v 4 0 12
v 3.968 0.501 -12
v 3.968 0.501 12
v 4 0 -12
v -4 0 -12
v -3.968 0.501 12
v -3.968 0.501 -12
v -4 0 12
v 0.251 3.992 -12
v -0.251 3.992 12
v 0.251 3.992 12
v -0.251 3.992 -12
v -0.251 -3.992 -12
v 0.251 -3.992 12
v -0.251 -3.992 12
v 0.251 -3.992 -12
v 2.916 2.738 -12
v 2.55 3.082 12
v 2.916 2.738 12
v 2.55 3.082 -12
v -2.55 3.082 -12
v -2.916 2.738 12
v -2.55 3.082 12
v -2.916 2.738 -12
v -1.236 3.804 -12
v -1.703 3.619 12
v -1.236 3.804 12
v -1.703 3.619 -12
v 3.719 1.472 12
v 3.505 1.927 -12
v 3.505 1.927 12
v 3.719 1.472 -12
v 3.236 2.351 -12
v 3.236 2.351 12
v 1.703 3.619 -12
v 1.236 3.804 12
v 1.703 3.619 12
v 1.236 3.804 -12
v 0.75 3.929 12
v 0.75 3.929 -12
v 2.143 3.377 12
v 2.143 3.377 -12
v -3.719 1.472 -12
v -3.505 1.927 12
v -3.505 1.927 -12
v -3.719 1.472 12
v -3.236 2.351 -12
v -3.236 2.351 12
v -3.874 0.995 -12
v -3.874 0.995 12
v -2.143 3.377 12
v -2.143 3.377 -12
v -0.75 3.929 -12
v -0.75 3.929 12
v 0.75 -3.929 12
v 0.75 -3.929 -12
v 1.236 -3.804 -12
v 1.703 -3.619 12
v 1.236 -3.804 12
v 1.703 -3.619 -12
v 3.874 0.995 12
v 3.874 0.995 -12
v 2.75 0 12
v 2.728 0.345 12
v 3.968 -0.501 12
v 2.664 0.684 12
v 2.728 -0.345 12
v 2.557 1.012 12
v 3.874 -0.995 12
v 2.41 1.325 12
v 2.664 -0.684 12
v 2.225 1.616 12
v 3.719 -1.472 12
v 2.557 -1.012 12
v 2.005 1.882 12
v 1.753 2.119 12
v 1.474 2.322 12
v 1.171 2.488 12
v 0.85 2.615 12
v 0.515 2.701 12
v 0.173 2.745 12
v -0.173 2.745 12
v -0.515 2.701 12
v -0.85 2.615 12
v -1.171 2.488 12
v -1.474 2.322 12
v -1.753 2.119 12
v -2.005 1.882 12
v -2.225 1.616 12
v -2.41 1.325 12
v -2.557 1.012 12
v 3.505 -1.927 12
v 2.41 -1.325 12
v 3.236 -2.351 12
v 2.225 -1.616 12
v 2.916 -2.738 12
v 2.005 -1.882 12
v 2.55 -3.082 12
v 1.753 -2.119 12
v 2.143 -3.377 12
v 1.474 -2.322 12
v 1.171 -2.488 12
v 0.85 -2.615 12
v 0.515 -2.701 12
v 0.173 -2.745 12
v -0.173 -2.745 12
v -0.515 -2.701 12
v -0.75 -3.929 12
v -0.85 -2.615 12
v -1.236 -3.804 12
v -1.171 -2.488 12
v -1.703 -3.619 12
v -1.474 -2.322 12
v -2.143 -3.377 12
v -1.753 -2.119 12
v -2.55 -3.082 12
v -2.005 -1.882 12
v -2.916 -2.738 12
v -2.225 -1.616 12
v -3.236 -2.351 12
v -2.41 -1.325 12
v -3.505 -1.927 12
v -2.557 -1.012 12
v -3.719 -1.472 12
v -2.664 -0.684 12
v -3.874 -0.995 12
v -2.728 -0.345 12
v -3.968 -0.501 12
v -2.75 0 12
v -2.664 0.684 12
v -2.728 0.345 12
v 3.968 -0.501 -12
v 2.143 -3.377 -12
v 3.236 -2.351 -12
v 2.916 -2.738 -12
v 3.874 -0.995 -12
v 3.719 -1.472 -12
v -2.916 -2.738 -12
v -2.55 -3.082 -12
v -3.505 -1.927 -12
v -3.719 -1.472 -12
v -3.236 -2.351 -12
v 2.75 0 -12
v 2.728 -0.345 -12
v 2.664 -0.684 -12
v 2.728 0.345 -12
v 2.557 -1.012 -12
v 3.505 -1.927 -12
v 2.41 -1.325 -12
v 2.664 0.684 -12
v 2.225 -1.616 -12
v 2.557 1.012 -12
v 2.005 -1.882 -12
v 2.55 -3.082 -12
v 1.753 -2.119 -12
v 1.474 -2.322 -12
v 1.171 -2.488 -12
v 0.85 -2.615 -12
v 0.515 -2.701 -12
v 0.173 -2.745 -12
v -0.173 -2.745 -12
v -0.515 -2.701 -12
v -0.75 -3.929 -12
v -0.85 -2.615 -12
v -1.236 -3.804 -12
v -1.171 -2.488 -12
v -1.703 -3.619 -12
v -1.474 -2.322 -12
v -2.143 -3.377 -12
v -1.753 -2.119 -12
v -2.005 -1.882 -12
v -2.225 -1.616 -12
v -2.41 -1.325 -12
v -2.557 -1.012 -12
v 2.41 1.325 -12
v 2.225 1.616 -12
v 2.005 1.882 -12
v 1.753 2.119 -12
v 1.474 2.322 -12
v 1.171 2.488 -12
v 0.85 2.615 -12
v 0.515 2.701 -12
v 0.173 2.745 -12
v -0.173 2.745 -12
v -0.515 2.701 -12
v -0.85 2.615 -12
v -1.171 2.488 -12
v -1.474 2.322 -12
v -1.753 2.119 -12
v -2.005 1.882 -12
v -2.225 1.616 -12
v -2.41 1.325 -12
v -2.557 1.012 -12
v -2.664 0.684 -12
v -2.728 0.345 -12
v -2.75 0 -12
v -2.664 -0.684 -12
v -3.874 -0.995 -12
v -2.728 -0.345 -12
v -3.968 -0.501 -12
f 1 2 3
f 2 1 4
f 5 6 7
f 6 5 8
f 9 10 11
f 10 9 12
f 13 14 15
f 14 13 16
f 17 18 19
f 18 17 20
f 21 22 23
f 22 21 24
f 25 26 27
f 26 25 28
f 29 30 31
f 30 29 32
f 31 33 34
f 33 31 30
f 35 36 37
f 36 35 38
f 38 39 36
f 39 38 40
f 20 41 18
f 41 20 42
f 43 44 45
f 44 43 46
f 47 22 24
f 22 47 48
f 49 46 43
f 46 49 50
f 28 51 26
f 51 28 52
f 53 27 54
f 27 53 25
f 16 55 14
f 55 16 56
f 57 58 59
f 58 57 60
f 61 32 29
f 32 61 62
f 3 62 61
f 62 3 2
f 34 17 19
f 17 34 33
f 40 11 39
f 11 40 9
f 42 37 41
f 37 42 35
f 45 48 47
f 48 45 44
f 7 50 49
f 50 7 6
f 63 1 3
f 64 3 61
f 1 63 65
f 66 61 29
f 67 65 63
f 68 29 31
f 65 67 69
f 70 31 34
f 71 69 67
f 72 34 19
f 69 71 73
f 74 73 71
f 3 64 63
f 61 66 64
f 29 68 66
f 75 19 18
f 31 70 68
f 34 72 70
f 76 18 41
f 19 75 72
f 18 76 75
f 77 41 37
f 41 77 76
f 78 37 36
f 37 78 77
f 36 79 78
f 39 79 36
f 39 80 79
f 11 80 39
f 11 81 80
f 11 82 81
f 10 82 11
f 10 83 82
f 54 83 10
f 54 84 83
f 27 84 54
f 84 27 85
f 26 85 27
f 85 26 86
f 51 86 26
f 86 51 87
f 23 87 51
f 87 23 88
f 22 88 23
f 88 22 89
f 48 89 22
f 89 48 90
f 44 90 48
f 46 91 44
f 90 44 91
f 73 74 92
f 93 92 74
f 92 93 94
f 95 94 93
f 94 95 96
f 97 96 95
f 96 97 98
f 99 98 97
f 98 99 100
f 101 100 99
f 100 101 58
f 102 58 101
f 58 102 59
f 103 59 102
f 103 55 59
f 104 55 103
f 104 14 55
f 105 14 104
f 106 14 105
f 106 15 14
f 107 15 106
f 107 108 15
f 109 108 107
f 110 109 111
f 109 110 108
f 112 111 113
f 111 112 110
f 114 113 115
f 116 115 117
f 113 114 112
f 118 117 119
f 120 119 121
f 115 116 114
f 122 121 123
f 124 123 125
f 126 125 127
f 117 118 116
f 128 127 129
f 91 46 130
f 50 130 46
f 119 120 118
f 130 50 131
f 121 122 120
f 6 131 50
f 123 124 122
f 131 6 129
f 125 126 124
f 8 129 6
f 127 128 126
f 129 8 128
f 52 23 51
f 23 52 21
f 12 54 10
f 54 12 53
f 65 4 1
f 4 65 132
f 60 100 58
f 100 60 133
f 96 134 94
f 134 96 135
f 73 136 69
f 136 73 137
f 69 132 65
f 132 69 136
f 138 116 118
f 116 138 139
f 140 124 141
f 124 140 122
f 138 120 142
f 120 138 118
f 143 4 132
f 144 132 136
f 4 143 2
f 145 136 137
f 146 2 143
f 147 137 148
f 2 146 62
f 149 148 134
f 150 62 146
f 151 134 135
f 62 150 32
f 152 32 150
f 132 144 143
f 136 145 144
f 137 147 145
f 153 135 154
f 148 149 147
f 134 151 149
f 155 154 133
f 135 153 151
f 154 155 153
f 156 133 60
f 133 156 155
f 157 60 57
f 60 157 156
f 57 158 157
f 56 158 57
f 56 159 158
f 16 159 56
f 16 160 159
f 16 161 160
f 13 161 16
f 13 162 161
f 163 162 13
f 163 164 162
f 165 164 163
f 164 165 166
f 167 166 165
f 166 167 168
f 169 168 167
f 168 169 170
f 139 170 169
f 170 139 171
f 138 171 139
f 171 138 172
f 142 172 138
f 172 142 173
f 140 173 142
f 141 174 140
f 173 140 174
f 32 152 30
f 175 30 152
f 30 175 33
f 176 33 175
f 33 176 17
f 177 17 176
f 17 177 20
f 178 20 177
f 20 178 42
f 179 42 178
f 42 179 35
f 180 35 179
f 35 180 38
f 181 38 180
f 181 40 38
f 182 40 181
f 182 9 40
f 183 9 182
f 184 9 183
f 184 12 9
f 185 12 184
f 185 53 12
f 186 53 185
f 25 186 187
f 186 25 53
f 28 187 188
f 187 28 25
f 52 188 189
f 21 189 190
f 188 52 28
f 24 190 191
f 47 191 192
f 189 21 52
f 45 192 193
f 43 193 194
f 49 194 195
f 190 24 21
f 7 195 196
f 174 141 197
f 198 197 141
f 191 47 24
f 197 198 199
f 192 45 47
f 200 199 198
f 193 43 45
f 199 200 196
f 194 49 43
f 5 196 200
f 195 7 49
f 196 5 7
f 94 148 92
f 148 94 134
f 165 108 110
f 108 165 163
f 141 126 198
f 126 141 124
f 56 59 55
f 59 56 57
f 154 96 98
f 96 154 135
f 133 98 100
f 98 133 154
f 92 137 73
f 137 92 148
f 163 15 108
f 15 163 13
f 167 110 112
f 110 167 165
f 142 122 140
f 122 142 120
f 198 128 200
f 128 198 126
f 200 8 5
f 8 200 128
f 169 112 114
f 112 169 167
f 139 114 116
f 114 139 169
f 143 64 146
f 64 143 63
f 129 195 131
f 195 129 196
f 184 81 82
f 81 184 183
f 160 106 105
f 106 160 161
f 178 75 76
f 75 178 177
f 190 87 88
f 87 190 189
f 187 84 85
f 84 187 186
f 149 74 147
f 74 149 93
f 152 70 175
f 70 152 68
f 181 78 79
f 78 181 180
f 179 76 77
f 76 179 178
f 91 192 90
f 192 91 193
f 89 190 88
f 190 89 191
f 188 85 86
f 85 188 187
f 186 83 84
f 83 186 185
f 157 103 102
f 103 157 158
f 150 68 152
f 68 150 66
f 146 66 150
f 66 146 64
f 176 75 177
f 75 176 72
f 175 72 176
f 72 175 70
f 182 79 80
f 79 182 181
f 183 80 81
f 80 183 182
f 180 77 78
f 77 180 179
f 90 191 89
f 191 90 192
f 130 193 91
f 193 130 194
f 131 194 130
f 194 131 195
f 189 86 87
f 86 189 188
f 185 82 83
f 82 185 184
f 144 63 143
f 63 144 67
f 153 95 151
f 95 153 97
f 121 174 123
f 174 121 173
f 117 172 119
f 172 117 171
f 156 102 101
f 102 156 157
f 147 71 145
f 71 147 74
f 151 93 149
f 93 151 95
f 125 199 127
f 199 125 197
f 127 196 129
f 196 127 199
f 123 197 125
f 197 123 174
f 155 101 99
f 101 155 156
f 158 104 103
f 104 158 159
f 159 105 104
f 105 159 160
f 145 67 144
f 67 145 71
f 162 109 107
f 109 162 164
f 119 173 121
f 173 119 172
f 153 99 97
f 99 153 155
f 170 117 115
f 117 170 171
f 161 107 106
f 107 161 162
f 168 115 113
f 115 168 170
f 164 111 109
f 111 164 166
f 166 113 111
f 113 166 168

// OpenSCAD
$fn = 50;


difference() {
	union() {
		translate(v = [0, 0, -12.0000000000]) {
			cylinder(h = 24, r = 4.0000000000);
		}
	}
	union() {
		translate(v = [0, 0, -100.0000000000]) {
			cylinder(h = 200, r = 2.7500000000);
		}
	}
}
